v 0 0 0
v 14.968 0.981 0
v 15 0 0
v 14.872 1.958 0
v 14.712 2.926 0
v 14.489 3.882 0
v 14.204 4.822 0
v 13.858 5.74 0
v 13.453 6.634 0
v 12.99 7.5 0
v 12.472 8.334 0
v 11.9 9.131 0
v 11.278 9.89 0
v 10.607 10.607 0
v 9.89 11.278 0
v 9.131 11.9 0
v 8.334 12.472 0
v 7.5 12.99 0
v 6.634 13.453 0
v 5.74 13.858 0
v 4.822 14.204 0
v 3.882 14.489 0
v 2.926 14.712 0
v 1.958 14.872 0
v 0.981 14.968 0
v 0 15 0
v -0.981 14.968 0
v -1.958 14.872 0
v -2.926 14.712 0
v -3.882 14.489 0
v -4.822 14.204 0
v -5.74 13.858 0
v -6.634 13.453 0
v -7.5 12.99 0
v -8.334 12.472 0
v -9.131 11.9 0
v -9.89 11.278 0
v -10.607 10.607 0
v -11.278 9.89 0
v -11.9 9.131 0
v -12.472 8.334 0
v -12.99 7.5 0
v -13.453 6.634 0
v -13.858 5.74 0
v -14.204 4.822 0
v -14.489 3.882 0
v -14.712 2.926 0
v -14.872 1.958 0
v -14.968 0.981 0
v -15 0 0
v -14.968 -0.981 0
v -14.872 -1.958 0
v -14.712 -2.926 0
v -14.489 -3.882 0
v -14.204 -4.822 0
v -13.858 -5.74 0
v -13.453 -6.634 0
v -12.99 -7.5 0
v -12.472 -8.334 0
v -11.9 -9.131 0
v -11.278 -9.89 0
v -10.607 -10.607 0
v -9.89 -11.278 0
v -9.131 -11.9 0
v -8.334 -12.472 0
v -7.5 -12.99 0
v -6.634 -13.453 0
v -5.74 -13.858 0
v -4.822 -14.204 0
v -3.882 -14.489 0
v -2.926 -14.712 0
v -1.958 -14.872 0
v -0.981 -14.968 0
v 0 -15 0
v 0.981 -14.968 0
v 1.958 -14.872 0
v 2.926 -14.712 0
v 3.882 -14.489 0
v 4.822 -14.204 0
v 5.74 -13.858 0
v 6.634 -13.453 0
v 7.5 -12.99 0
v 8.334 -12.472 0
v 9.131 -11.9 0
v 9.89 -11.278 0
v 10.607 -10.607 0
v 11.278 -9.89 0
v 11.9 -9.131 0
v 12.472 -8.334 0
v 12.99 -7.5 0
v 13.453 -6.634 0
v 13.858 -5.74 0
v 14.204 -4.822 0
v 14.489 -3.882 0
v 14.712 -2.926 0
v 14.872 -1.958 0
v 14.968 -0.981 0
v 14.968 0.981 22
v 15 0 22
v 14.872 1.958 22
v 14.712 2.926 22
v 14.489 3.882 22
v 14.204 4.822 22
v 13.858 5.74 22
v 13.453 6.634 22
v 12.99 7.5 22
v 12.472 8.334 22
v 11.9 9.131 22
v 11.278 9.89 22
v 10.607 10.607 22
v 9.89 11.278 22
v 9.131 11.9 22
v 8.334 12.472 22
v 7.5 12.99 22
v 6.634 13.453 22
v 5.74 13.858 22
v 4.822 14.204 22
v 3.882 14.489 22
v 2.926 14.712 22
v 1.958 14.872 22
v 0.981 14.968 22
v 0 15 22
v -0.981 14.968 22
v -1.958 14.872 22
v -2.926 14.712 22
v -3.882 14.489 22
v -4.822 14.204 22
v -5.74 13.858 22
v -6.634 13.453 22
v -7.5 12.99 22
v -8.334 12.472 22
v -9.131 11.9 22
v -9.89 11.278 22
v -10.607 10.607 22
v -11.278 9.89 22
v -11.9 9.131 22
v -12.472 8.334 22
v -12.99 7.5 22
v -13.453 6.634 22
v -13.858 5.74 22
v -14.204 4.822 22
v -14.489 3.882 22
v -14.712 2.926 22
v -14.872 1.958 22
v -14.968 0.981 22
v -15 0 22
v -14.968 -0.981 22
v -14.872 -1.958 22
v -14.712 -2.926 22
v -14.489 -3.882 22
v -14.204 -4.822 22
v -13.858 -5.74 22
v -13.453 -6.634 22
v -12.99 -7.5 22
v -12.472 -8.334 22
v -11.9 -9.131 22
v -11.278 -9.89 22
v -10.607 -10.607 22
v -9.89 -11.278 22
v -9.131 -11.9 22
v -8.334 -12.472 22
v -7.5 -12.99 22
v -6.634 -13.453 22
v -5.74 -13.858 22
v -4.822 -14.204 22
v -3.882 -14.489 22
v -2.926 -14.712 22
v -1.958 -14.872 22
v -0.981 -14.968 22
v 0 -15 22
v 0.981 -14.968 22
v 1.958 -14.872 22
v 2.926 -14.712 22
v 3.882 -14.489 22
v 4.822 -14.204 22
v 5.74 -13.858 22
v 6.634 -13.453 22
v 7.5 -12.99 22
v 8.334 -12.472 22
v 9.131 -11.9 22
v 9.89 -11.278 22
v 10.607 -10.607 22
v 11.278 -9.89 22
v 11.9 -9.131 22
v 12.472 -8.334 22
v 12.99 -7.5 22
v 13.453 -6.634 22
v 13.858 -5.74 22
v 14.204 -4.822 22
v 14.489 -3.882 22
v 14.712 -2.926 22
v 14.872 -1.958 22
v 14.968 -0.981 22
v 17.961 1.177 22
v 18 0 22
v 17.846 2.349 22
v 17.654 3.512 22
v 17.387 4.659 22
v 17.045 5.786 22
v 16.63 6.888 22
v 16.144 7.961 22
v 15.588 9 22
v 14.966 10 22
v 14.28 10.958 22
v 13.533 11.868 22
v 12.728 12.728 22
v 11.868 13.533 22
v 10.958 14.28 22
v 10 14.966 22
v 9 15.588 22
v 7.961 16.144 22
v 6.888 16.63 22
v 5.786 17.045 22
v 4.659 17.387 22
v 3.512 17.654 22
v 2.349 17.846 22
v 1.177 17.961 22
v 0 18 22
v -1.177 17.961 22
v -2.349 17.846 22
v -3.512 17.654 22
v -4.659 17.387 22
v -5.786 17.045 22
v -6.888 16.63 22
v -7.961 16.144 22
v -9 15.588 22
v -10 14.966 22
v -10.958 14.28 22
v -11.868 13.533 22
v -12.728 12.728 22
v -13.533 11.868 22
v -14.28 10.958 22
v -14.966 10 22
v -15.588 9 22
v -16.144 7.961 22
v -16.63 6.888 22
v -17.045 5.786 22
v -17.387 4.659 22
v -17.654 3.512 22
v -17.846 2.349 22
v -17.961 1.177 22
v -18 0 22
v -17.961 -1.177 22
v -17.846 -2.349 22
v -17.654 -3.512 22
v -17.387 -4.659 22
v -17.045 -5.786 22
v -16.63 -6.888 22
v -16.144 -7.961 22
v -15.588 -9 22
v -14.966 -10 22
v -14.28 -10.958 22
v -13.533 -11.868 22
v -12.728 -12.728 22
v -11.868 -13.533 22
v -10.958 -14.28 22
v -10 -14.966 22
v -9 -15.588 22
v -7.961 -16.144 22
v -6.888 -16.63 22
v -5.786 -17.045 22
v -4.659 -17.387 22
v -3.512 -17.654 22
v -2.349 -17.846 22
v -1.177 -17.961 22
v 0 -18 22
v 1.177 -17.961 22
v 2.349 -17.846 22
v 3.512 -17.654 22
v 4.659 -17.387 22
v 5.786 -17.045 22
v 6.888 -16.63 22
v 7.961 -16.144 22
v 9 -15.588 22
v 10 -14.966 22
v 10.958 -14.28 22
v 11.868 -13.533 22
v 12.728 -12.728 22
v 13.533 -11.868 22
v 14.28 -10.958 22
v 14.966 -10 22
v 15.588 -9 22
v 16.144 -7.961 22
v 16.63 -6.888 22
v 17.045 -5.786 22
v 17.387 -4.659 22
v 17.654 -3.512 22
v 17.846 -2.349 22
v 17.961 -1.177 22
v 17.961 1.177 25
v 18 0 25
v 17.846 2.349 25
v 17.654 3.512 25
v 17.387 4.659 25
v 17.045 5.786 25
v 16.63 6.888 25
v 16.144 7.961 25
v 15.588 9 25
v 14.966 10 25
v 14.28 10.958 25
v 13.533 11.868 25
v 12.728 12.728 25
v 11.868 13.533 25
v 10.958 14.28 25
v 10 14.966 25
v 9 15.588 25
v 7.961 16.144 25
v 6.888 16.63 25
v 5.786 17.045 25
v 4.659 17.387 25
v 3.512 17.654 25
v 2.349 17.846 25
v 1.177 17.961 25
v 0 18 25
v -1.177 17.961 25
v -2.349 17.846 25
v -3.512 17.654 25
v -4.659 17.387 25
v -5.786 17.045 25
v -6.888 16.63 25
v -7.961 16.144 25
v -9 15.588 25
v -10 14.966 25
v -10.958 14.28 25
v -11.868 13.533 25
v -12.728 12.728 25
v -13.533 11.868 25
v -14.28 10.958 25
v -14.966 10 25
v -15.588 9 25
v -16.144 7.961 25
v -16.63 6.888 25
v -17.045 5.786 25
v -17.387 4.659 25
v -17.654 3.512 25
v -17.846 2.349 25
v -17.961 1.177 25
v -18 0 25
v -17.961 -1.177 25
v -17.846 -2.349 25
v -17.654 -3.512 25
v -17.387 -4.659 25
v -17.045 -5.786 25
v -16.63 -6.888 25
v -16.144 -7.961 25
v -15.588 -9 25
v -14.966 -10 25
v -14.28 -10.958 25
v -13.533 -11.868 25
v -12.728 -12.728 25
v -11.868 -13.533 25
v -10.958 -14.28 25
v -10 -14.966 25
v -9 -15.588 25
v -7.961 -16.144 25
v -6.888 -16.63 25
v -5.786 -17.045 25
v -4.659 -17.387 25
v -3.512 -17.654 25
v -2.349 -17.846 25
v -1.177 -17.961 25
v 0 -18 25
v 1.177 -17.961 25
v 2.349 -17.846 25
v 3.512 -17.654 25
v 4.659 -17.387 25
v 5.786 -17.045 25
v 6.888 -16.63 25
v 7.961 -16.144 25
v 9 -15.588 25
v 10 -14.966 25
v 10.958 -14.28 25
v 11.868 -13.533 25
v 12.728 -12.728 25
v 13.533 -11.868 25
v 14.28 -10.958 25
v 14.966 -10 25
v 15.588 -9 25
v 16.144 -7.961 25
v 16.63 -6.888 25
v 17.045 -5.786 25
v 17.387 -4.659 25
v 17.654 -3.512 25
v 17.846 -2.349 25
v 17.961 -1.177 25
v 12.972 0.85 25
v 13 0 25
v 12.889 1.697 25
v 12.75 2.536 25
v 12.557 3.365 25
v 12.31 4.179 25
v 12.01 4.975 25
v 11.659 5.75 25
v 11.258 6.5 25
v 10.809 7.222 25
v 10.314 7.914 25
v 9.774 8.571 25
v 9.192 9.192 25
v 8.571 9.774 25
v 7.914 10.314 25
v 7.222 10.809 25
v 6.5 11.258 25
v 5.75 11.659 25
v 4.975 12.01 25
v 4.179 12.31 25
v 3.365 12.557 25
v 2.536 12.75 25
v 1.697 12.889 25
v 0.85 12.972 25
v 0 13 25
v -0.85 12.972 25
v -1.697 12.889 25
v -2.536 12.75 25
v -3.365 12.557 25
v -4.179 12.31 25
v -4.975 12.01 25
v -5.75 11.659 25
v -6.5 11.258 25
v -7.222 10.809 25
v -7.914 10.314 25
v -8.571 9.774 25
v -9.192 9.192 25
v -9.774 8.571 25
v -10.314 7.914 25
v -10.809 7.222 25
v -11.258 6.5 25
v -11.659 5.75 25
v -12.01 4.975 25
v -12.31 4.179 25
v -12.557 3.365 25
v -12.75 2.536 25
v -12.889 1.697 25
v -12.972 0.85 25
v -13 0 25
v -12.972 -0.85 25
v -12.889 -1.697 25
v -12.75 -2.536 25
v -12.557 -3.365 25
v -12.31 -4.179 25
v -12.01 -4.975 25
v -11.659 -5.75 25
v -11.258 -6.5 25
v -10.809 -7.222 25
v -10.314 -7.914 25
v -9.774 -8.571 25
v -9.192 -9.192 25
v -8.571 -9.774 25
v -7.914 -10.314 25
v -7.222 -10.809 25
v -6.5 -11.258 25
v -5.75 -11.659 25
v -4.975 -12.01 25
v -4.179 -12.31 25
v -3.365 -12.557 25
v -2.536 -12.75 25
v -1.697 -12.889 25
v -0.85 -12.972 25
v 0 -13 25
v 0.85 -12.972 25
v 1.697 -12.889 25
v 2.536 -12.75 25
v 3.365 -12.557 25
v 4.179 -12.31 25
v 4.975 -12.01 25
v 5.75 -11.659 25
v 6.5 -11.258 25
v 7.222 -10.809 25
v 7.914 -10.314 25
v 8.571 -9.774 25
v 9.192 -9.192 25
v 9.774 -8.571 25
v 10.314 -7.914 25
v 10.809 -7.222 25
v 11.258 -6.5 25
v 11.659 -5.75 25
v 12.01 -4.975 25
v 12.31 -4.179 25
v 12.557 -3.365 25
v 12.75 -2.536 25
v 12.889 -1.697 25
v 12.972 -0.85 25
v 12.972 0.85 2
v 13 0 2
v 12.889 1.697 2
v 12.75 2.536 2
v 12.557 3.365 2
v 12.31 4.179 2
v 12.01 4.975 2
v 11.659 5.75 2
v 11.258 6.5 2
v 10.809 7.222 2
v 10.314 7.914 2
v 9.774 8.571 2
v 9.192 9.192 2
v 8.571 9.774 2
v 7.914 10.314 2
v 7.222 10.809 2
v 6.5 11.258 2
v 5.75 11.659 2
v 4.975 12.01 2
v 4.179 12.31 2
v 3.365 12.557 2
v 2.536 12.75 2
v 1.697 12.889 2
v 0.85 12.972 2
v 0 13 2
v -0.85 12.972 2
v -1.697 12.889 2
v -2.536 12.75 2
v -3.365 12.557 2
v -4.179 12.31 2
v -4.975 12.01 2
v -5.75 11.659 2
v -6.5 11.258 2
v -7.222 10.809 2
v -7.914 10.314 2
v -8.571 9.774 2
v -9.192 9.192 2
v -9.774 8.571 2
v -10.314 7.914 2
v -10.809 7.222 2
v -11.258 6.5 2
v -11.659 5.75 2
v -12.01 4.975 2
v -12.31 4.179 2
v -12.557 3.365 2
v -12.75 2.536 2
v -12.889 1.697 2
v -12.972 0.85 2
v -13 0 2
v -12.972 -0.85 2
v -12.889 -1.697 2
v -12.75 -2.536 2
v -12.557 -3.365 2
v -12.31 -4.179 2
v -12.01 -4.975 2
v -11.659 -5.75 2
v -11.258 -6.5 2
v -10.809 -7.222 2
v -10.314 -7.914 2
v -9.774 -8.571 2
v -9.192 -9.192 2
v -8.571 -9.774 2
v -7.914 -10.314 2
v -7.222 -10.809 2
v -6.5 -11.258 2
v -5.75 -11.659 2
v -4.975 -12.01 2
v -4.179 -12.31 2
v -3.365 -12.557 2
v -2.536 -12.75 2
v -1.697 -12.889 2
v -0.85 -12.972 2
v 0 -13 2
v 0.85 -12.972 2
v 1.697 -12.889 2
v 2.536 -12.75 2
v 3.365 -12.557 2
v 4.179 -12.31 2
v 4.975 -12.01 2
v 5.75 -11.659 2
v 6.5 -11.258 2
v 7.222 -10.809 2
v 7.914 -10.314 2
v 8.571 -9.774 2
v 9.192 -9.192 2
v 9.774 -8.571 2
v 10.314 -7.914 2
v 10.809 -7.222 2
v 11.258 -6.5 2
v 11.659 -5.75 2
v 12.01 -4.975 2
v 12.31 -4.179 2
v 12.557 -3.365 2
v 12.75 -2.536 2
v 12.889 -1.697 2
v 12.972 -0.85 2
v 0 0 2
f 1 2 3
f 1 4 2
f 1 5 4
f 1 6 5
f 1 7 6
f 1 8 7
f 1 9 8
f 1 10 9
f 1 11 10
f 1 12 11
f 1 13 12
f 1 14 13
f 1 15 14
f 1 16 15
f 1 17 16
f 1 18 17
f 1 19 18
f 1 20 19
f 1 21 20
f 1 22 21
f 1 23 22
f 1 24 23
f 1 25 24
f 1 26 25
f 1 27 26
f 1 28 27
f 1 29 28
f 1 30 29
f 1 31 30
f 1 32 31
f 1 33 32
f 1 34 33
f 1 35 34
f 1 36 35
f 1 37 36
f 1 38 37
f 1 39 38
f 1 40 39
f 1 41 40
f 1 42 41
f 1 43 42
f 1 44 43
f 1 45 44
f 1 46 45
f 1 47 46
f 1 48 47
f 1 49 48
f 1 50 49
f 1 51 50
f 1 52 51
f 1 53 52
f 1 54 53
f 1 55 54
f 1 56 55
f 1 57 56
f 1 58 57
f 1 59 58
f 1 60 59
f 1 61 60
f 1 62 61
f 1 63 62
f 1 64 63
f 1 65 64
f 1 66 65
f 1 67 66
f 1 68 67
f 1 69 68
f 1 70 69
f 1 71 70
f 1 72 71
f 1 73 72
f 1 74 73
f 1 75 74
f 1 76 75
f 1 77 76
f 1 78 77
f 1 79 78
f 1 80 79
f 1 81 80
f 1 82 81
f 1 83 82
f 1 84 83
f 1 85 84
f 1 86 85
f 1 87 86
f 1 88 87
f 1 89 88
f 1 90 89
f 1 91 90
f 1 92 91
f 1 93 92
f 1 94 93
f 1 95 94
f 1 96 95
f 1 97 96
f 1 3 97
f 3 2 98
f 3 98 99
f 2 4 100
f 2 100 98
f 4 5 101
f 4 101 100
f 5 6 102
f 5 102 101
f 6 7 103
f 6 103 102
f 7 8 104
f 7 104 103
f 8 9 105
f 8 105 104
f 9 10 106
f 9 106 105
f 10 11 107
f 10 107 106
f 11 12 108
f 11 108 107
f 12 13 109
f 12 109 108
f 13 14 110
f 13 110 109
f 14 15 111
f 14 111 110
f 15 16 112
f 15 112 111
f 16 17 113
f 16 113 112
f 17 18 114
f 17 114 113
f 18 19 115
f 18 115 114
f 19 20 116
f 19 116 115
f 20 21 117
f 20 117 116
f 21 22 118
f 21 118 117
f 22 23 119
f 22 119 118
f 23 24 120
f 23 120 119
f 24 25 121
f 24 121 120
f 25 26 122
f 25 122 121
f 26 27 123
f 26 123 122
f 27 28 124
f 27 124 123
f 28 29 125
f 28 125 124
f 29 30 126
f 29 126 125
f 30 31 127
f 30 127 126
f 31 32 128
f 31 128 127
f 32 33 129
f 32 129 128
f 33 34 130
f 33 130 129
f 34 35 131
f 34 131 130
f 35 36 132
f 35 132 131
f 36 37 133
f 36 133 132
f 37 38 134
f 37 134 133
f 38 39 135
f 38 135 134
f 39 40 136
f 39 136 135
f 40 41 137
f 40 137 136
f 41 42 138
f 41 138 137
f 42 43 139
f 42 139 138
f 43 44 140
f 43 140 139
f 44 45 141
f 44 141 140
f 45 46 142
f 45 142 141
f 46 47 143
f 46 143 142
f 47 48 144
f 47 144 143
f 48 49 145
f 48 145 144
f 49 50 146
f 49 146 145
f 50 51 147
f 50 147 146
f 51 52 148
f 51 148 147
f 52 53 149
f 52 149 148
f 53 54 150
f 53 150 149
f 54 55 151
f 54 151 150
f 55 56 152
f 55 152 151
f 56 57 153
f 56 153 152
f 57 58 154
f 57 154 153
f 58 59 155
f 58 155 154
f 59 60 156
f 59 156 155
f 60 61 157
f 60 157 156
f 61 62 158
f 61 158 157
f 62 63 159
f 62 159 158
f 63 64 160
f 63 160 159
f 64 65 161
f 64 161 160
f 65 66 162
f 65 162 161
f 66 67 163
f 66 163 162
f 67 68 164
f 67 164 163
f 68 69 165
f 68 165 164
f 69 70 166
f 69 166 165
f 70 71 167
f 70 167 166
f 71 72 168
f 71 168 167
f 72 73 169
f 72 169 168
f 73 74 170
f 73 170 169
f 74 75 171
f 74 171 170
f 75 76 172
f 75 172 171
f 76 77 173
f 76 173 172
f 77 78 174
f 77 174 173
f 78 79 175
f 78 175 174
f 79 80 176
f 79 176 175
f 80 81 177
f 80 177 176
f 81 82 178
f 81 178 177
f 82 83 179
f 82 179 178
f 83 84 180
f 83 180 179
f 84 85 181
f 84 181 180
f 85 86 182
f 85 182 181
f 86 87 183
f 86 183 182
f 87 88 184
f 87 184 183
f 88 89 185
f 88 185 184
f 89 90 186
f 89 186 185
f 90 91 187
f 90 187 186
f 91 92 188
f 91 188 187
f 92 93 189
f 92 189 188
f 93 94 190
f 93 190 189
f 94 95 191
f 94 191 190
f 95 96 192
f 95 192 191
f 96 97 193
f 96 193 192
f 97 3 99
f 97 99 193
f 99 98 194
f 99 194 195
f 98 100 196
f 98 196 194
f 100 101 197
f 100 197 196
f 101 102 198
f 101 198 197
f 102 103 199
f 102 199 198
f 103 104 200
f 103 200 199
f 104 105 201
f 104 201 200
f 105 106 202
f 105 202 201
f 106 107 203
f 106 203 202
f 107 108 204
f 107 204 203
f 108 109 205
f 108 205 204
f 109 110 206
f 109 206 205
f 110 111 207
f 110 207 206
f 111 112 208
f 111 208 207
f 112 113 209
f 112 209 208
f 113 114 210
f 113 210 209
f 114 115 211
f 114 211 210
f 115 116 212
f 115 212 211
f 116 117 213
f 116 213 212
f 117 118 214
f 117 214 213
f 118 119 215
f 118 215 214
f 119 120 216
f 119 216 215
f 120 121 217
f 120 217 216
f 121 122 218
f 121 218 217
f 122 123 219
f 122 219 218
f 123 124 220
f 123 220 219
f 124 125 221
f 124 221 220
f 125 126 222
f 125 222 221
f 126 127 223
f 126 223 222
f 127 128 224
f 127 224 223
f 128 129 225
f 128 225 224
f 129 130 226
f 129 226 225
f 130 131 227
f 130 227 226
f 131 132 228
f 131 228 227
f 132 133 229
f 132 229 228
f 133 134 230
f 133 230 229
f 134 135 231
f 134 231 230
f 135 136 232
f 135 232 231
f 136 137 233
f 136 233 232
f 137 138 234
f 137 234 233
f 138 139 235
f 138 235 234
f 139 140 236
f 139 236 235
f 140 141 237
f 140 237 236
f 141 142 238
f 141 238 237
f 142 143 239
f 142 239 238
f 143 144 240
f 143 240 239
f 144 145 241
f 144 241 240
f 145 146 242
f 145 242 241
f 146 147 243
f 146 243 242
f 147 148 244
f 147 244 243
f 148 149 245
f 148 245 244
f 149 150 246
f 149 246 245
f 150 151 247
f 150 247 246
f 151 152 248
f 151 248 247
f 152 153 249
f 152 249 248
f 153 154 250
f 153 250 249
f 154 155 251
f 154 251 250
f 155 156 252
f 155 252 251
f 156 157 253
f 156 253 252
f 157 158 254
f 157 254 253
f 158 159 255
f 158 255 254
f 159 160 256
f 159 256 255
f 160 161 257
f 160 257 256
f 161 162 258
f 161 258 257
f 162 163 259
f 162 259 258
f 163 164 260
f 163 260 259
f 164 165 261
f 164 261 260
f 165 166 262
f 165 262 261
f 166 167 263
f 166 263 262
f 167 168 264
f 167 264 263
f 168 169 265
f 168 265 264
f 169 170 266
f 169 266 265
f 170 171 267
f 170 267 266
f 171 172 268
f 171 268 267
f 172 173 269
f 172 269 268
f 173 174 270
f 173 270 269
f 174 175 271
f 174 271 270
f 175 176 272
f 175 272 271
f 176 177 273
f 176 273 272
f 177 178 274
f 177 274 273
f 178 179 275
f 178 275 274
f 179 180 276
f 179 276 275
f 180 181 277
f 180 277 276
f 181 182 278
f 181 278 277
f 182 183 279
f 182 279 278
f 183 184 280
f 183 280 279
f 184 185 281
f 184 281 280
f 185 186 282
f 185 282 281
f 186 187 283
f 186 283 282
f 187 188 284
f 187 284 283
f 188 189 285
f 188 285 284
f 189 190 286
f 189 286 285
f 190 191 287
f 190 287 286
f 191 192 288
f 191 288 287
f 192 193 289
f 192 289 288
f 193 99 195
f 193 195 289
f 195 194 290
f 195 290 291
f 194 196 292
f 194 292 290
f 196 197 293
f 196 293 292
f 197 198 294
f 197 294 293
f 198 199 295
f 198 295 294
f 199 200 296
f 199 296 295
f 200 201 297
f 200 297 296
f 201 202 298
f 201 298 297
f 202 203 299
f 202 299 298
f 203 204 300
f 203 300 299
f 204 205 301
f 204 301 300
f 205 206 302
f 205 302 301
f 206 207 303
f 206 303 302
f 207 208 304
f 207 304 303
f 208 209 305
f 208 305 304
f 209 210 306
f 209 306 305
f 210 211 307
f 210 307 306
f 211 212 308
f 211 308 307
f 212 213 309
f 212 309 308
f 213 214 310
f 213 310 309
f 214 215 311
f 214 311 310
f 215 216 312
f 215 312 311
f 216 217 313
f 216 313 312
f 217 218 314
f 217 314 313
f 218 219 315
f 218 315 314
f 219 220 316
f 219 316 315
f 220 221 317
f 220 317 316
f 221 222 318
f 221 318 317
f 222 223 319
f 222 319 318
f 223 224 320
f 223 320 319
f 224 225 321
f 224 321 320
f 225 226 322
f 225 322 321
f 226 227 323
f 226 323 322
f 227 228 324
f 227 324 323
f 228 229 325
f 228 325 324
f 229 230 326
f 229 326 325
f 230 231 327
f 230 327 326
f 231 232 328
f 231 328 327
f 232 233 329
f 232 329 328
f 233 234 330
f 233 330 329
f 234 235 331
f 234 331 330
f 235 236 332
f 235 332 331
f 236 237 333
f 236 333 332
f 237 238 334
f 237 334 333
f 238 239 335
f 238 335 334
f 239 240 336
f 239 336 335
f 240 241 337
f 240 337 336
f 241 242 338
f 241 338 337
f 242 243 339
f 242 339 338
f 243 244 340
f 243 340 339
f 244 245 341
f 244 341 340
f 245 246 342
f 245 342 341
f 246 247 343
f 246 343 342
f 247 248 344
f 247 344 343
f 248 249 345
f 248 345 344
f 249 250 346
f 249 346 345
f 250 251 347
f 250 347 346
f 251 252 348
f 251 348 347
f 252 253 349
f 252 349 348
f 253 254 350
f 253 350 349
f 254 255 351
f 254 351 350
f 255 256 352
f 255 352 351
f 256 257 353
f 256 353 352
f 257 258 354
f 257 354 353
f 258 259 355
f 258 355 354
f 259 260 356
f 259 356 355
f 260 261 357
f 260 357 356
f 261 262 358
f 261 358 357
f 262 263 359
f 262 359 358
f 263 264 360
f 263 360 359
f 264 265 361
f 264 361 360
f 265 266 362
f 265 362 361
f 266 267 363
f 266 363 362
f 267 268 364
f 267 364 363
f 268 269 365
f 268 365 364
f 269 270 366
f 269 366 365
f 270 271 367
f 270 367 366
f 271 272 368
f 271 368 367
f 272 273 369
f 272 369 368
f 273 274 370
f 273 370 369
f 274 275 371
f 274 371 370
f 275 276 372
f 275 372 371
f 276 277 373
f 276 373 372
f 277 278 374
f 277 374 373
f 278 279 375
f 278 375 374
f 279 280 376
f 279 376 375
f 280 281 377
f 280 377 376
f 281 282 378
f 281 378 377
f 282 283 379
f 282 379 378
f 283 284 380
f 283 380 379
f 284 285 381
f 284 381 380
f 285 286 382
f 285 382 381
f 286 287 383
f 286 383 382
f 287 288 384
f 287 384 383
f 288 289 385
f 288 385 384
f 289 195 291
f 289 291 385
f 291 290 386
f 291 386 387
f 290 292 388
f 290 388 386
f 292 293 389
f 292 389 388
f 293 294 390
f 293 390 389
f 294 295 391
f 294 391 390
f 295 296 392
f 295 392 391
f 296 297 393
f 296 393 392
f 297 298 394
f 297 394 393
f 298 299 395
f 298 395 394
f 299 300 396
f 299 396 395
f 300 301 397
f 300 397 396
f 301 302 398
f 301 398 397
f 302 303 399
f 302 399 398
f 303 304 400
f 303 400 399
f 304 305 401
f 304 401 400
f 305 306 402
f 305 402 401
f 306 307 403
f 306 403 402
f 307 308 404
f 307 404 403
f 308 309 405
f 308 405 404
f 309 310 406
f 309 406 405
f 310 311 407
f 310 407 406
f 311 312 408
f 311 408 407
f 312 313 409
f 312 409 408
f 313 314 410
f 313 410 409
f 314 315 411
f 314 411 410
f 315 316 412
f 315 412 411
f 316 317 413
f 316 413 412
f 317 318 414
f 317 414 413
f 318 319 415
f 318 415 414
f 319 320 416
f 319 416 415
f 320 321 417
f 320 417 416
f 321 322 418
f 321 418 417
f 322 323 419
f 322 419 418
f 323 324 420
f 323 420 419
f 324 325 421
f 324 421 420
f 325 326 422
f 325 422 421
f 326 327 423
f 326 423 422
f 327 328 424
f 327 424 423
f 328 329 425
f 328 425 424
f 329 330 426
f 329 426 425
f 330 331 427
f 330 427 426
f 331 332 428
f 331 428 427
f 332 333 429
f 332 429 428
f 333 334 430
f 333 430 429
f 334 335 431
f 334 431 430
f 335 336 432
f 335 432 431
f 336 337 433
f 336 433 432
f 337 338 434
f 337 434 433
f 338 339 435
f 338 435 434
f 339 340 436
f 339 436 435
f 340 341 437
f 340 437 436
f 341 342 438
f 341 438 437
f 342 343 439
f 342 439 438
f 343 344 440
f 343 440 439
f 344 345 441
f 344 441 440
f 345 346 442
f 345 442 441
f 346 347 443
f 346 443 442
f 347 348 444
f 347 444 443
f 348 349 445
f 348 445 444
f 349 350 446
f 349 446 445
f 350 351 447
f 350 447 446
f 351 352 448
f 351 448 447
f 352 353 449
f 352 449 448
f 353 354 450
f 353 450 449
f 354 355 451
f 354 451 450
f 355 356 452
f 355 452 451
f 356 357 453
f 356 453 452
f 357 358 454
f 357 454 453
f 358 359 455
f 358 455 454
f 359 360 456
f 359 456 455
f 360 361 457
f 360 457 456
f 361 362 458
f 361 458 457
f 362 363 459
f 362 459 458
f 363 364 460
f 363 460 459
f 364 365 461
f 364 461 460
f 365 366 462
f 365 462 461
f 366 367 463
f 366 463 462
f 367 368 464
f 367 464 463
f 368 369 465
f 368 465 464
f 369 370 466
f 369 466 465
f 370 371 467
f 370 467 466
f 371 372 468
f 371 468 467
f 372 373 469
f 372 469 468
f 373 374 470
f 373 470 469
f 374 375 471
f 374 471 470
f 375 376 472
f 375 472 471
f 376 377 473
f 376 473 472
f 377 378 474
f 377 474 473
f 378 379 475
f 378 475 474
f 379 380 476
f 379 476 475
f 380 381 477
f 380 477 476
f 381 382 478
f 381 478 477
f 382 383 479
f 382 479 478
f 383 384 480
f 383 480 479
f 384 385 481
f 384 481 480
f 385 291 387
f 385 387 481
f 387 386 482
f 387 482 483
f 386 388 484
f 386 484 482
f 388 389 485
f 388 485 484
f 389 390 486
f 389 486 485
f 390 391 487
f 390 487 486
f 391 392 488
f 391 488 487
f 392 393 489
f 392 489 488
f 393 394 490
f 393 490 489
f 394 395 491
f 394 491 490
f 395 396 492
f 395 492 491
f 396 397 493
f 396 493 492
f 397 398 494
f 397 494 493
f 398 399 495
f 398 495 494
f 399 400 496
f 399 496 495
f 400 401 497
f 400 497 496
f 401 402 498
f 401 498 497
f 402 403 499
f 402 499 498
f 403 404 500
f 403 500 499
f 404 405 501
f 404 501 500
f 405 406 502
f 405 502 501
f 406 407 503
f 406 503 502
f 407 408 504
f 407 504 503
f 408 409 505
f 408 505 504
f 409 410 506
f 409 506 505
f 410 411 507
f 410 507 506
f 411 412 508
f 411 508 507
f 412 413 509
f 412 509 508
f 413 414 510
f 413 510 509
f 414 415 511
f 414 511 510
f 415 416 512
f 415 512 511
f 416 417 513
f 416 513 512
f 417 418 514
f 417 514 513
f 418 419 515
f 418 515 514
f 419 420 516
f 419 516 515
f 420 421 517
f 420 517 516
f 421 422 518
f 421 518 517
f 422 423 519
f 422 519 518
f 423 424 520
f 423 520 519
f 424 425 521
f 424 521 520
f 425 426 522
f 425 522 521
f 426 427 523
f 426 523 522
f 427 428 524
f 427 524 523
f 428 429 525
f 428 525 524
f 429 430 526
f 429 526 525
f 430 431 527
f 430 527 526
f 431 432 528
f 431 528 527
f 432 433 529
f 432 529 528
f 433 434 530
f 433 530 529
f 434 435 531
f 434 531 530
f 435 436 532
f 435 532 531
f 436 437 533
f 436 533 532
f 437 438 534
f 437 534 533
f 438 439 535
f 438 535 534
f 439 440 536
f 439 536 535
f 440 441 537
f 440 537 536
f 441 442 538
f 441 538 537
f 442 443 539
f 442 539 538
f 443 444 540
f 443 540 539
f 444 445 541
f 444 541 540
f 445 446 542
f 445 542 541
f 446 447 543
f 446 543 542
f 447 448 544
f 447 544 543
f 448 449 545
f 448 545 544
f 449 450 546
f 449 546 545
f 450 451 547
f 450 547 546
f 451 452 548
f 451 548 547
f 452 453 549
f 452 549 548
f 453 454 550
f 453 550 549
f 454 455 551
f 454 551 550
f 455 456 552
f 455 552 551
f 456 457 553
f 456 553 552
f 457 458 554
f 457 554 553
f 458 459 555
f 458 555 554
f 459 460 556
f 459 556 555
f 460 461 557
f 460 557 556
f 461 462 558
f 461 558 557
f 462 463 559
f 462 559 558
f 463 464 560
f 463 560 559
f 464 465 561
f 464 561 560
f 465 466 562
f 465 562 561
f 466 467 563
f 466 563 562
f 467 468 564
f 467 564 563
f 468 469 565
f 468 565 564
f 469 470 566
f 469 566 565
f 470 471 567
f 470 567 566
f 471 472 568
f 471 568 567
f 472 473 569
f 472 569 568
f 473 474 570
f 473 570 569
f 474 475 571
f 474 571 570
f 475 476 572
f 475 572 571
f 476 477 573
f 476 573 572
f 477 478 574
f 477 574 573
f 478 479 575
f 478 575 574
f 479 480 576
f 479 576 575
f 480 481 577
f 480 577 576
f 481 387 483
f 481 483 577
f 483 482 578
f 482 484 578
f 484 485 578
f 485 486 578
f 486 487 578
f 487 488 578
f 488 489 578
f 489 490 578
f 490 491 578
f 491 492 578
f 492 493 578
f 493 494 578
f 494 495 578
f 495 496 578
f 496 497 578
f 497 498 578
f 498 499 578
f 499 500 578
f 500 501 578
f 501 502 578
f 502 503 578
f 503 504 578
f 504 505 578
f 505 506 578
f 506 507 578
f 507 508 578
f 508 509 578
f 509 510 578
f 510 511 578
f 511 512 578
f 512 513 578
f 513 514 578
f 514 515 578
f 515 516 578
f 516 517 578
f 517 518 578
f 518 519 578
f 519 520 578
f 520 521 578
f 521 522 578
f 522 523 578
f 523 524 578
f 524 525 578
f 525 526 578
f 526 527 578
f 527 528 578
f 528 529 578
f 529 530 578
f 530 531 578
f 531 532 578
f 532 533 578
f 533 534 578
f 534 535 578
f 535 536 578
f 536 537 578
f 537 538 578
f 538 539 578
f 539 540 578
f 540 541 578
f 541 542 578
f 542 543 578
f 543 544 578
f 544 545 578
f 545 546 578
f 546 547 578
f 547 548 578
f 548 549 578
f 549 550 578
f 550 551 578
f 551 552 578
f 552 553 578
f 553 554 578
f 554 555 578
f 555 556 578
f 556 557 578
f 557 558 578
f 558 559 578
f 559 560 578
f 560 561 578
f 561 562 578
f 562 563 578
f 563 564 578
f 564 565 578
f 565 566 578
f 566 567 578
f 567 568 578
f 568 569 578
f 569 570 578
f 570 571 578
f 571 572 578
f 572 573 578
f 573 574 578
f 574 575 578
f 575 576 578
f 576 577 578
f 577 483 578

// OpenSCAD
// Original MechIntel educational model. CC0-1.0. Units: mm.
// Not a standardized or load-rated component.
$fn=96;
// Section points: [radius, height], mm. Edit to change the profile.
section=[[0, 0], [15, 0], [15, 22], [18, 22], [18, 25], [13, 25], [13, 2], [0, 2]];
rotate_extrude($fn=96) polygon(points=section);
